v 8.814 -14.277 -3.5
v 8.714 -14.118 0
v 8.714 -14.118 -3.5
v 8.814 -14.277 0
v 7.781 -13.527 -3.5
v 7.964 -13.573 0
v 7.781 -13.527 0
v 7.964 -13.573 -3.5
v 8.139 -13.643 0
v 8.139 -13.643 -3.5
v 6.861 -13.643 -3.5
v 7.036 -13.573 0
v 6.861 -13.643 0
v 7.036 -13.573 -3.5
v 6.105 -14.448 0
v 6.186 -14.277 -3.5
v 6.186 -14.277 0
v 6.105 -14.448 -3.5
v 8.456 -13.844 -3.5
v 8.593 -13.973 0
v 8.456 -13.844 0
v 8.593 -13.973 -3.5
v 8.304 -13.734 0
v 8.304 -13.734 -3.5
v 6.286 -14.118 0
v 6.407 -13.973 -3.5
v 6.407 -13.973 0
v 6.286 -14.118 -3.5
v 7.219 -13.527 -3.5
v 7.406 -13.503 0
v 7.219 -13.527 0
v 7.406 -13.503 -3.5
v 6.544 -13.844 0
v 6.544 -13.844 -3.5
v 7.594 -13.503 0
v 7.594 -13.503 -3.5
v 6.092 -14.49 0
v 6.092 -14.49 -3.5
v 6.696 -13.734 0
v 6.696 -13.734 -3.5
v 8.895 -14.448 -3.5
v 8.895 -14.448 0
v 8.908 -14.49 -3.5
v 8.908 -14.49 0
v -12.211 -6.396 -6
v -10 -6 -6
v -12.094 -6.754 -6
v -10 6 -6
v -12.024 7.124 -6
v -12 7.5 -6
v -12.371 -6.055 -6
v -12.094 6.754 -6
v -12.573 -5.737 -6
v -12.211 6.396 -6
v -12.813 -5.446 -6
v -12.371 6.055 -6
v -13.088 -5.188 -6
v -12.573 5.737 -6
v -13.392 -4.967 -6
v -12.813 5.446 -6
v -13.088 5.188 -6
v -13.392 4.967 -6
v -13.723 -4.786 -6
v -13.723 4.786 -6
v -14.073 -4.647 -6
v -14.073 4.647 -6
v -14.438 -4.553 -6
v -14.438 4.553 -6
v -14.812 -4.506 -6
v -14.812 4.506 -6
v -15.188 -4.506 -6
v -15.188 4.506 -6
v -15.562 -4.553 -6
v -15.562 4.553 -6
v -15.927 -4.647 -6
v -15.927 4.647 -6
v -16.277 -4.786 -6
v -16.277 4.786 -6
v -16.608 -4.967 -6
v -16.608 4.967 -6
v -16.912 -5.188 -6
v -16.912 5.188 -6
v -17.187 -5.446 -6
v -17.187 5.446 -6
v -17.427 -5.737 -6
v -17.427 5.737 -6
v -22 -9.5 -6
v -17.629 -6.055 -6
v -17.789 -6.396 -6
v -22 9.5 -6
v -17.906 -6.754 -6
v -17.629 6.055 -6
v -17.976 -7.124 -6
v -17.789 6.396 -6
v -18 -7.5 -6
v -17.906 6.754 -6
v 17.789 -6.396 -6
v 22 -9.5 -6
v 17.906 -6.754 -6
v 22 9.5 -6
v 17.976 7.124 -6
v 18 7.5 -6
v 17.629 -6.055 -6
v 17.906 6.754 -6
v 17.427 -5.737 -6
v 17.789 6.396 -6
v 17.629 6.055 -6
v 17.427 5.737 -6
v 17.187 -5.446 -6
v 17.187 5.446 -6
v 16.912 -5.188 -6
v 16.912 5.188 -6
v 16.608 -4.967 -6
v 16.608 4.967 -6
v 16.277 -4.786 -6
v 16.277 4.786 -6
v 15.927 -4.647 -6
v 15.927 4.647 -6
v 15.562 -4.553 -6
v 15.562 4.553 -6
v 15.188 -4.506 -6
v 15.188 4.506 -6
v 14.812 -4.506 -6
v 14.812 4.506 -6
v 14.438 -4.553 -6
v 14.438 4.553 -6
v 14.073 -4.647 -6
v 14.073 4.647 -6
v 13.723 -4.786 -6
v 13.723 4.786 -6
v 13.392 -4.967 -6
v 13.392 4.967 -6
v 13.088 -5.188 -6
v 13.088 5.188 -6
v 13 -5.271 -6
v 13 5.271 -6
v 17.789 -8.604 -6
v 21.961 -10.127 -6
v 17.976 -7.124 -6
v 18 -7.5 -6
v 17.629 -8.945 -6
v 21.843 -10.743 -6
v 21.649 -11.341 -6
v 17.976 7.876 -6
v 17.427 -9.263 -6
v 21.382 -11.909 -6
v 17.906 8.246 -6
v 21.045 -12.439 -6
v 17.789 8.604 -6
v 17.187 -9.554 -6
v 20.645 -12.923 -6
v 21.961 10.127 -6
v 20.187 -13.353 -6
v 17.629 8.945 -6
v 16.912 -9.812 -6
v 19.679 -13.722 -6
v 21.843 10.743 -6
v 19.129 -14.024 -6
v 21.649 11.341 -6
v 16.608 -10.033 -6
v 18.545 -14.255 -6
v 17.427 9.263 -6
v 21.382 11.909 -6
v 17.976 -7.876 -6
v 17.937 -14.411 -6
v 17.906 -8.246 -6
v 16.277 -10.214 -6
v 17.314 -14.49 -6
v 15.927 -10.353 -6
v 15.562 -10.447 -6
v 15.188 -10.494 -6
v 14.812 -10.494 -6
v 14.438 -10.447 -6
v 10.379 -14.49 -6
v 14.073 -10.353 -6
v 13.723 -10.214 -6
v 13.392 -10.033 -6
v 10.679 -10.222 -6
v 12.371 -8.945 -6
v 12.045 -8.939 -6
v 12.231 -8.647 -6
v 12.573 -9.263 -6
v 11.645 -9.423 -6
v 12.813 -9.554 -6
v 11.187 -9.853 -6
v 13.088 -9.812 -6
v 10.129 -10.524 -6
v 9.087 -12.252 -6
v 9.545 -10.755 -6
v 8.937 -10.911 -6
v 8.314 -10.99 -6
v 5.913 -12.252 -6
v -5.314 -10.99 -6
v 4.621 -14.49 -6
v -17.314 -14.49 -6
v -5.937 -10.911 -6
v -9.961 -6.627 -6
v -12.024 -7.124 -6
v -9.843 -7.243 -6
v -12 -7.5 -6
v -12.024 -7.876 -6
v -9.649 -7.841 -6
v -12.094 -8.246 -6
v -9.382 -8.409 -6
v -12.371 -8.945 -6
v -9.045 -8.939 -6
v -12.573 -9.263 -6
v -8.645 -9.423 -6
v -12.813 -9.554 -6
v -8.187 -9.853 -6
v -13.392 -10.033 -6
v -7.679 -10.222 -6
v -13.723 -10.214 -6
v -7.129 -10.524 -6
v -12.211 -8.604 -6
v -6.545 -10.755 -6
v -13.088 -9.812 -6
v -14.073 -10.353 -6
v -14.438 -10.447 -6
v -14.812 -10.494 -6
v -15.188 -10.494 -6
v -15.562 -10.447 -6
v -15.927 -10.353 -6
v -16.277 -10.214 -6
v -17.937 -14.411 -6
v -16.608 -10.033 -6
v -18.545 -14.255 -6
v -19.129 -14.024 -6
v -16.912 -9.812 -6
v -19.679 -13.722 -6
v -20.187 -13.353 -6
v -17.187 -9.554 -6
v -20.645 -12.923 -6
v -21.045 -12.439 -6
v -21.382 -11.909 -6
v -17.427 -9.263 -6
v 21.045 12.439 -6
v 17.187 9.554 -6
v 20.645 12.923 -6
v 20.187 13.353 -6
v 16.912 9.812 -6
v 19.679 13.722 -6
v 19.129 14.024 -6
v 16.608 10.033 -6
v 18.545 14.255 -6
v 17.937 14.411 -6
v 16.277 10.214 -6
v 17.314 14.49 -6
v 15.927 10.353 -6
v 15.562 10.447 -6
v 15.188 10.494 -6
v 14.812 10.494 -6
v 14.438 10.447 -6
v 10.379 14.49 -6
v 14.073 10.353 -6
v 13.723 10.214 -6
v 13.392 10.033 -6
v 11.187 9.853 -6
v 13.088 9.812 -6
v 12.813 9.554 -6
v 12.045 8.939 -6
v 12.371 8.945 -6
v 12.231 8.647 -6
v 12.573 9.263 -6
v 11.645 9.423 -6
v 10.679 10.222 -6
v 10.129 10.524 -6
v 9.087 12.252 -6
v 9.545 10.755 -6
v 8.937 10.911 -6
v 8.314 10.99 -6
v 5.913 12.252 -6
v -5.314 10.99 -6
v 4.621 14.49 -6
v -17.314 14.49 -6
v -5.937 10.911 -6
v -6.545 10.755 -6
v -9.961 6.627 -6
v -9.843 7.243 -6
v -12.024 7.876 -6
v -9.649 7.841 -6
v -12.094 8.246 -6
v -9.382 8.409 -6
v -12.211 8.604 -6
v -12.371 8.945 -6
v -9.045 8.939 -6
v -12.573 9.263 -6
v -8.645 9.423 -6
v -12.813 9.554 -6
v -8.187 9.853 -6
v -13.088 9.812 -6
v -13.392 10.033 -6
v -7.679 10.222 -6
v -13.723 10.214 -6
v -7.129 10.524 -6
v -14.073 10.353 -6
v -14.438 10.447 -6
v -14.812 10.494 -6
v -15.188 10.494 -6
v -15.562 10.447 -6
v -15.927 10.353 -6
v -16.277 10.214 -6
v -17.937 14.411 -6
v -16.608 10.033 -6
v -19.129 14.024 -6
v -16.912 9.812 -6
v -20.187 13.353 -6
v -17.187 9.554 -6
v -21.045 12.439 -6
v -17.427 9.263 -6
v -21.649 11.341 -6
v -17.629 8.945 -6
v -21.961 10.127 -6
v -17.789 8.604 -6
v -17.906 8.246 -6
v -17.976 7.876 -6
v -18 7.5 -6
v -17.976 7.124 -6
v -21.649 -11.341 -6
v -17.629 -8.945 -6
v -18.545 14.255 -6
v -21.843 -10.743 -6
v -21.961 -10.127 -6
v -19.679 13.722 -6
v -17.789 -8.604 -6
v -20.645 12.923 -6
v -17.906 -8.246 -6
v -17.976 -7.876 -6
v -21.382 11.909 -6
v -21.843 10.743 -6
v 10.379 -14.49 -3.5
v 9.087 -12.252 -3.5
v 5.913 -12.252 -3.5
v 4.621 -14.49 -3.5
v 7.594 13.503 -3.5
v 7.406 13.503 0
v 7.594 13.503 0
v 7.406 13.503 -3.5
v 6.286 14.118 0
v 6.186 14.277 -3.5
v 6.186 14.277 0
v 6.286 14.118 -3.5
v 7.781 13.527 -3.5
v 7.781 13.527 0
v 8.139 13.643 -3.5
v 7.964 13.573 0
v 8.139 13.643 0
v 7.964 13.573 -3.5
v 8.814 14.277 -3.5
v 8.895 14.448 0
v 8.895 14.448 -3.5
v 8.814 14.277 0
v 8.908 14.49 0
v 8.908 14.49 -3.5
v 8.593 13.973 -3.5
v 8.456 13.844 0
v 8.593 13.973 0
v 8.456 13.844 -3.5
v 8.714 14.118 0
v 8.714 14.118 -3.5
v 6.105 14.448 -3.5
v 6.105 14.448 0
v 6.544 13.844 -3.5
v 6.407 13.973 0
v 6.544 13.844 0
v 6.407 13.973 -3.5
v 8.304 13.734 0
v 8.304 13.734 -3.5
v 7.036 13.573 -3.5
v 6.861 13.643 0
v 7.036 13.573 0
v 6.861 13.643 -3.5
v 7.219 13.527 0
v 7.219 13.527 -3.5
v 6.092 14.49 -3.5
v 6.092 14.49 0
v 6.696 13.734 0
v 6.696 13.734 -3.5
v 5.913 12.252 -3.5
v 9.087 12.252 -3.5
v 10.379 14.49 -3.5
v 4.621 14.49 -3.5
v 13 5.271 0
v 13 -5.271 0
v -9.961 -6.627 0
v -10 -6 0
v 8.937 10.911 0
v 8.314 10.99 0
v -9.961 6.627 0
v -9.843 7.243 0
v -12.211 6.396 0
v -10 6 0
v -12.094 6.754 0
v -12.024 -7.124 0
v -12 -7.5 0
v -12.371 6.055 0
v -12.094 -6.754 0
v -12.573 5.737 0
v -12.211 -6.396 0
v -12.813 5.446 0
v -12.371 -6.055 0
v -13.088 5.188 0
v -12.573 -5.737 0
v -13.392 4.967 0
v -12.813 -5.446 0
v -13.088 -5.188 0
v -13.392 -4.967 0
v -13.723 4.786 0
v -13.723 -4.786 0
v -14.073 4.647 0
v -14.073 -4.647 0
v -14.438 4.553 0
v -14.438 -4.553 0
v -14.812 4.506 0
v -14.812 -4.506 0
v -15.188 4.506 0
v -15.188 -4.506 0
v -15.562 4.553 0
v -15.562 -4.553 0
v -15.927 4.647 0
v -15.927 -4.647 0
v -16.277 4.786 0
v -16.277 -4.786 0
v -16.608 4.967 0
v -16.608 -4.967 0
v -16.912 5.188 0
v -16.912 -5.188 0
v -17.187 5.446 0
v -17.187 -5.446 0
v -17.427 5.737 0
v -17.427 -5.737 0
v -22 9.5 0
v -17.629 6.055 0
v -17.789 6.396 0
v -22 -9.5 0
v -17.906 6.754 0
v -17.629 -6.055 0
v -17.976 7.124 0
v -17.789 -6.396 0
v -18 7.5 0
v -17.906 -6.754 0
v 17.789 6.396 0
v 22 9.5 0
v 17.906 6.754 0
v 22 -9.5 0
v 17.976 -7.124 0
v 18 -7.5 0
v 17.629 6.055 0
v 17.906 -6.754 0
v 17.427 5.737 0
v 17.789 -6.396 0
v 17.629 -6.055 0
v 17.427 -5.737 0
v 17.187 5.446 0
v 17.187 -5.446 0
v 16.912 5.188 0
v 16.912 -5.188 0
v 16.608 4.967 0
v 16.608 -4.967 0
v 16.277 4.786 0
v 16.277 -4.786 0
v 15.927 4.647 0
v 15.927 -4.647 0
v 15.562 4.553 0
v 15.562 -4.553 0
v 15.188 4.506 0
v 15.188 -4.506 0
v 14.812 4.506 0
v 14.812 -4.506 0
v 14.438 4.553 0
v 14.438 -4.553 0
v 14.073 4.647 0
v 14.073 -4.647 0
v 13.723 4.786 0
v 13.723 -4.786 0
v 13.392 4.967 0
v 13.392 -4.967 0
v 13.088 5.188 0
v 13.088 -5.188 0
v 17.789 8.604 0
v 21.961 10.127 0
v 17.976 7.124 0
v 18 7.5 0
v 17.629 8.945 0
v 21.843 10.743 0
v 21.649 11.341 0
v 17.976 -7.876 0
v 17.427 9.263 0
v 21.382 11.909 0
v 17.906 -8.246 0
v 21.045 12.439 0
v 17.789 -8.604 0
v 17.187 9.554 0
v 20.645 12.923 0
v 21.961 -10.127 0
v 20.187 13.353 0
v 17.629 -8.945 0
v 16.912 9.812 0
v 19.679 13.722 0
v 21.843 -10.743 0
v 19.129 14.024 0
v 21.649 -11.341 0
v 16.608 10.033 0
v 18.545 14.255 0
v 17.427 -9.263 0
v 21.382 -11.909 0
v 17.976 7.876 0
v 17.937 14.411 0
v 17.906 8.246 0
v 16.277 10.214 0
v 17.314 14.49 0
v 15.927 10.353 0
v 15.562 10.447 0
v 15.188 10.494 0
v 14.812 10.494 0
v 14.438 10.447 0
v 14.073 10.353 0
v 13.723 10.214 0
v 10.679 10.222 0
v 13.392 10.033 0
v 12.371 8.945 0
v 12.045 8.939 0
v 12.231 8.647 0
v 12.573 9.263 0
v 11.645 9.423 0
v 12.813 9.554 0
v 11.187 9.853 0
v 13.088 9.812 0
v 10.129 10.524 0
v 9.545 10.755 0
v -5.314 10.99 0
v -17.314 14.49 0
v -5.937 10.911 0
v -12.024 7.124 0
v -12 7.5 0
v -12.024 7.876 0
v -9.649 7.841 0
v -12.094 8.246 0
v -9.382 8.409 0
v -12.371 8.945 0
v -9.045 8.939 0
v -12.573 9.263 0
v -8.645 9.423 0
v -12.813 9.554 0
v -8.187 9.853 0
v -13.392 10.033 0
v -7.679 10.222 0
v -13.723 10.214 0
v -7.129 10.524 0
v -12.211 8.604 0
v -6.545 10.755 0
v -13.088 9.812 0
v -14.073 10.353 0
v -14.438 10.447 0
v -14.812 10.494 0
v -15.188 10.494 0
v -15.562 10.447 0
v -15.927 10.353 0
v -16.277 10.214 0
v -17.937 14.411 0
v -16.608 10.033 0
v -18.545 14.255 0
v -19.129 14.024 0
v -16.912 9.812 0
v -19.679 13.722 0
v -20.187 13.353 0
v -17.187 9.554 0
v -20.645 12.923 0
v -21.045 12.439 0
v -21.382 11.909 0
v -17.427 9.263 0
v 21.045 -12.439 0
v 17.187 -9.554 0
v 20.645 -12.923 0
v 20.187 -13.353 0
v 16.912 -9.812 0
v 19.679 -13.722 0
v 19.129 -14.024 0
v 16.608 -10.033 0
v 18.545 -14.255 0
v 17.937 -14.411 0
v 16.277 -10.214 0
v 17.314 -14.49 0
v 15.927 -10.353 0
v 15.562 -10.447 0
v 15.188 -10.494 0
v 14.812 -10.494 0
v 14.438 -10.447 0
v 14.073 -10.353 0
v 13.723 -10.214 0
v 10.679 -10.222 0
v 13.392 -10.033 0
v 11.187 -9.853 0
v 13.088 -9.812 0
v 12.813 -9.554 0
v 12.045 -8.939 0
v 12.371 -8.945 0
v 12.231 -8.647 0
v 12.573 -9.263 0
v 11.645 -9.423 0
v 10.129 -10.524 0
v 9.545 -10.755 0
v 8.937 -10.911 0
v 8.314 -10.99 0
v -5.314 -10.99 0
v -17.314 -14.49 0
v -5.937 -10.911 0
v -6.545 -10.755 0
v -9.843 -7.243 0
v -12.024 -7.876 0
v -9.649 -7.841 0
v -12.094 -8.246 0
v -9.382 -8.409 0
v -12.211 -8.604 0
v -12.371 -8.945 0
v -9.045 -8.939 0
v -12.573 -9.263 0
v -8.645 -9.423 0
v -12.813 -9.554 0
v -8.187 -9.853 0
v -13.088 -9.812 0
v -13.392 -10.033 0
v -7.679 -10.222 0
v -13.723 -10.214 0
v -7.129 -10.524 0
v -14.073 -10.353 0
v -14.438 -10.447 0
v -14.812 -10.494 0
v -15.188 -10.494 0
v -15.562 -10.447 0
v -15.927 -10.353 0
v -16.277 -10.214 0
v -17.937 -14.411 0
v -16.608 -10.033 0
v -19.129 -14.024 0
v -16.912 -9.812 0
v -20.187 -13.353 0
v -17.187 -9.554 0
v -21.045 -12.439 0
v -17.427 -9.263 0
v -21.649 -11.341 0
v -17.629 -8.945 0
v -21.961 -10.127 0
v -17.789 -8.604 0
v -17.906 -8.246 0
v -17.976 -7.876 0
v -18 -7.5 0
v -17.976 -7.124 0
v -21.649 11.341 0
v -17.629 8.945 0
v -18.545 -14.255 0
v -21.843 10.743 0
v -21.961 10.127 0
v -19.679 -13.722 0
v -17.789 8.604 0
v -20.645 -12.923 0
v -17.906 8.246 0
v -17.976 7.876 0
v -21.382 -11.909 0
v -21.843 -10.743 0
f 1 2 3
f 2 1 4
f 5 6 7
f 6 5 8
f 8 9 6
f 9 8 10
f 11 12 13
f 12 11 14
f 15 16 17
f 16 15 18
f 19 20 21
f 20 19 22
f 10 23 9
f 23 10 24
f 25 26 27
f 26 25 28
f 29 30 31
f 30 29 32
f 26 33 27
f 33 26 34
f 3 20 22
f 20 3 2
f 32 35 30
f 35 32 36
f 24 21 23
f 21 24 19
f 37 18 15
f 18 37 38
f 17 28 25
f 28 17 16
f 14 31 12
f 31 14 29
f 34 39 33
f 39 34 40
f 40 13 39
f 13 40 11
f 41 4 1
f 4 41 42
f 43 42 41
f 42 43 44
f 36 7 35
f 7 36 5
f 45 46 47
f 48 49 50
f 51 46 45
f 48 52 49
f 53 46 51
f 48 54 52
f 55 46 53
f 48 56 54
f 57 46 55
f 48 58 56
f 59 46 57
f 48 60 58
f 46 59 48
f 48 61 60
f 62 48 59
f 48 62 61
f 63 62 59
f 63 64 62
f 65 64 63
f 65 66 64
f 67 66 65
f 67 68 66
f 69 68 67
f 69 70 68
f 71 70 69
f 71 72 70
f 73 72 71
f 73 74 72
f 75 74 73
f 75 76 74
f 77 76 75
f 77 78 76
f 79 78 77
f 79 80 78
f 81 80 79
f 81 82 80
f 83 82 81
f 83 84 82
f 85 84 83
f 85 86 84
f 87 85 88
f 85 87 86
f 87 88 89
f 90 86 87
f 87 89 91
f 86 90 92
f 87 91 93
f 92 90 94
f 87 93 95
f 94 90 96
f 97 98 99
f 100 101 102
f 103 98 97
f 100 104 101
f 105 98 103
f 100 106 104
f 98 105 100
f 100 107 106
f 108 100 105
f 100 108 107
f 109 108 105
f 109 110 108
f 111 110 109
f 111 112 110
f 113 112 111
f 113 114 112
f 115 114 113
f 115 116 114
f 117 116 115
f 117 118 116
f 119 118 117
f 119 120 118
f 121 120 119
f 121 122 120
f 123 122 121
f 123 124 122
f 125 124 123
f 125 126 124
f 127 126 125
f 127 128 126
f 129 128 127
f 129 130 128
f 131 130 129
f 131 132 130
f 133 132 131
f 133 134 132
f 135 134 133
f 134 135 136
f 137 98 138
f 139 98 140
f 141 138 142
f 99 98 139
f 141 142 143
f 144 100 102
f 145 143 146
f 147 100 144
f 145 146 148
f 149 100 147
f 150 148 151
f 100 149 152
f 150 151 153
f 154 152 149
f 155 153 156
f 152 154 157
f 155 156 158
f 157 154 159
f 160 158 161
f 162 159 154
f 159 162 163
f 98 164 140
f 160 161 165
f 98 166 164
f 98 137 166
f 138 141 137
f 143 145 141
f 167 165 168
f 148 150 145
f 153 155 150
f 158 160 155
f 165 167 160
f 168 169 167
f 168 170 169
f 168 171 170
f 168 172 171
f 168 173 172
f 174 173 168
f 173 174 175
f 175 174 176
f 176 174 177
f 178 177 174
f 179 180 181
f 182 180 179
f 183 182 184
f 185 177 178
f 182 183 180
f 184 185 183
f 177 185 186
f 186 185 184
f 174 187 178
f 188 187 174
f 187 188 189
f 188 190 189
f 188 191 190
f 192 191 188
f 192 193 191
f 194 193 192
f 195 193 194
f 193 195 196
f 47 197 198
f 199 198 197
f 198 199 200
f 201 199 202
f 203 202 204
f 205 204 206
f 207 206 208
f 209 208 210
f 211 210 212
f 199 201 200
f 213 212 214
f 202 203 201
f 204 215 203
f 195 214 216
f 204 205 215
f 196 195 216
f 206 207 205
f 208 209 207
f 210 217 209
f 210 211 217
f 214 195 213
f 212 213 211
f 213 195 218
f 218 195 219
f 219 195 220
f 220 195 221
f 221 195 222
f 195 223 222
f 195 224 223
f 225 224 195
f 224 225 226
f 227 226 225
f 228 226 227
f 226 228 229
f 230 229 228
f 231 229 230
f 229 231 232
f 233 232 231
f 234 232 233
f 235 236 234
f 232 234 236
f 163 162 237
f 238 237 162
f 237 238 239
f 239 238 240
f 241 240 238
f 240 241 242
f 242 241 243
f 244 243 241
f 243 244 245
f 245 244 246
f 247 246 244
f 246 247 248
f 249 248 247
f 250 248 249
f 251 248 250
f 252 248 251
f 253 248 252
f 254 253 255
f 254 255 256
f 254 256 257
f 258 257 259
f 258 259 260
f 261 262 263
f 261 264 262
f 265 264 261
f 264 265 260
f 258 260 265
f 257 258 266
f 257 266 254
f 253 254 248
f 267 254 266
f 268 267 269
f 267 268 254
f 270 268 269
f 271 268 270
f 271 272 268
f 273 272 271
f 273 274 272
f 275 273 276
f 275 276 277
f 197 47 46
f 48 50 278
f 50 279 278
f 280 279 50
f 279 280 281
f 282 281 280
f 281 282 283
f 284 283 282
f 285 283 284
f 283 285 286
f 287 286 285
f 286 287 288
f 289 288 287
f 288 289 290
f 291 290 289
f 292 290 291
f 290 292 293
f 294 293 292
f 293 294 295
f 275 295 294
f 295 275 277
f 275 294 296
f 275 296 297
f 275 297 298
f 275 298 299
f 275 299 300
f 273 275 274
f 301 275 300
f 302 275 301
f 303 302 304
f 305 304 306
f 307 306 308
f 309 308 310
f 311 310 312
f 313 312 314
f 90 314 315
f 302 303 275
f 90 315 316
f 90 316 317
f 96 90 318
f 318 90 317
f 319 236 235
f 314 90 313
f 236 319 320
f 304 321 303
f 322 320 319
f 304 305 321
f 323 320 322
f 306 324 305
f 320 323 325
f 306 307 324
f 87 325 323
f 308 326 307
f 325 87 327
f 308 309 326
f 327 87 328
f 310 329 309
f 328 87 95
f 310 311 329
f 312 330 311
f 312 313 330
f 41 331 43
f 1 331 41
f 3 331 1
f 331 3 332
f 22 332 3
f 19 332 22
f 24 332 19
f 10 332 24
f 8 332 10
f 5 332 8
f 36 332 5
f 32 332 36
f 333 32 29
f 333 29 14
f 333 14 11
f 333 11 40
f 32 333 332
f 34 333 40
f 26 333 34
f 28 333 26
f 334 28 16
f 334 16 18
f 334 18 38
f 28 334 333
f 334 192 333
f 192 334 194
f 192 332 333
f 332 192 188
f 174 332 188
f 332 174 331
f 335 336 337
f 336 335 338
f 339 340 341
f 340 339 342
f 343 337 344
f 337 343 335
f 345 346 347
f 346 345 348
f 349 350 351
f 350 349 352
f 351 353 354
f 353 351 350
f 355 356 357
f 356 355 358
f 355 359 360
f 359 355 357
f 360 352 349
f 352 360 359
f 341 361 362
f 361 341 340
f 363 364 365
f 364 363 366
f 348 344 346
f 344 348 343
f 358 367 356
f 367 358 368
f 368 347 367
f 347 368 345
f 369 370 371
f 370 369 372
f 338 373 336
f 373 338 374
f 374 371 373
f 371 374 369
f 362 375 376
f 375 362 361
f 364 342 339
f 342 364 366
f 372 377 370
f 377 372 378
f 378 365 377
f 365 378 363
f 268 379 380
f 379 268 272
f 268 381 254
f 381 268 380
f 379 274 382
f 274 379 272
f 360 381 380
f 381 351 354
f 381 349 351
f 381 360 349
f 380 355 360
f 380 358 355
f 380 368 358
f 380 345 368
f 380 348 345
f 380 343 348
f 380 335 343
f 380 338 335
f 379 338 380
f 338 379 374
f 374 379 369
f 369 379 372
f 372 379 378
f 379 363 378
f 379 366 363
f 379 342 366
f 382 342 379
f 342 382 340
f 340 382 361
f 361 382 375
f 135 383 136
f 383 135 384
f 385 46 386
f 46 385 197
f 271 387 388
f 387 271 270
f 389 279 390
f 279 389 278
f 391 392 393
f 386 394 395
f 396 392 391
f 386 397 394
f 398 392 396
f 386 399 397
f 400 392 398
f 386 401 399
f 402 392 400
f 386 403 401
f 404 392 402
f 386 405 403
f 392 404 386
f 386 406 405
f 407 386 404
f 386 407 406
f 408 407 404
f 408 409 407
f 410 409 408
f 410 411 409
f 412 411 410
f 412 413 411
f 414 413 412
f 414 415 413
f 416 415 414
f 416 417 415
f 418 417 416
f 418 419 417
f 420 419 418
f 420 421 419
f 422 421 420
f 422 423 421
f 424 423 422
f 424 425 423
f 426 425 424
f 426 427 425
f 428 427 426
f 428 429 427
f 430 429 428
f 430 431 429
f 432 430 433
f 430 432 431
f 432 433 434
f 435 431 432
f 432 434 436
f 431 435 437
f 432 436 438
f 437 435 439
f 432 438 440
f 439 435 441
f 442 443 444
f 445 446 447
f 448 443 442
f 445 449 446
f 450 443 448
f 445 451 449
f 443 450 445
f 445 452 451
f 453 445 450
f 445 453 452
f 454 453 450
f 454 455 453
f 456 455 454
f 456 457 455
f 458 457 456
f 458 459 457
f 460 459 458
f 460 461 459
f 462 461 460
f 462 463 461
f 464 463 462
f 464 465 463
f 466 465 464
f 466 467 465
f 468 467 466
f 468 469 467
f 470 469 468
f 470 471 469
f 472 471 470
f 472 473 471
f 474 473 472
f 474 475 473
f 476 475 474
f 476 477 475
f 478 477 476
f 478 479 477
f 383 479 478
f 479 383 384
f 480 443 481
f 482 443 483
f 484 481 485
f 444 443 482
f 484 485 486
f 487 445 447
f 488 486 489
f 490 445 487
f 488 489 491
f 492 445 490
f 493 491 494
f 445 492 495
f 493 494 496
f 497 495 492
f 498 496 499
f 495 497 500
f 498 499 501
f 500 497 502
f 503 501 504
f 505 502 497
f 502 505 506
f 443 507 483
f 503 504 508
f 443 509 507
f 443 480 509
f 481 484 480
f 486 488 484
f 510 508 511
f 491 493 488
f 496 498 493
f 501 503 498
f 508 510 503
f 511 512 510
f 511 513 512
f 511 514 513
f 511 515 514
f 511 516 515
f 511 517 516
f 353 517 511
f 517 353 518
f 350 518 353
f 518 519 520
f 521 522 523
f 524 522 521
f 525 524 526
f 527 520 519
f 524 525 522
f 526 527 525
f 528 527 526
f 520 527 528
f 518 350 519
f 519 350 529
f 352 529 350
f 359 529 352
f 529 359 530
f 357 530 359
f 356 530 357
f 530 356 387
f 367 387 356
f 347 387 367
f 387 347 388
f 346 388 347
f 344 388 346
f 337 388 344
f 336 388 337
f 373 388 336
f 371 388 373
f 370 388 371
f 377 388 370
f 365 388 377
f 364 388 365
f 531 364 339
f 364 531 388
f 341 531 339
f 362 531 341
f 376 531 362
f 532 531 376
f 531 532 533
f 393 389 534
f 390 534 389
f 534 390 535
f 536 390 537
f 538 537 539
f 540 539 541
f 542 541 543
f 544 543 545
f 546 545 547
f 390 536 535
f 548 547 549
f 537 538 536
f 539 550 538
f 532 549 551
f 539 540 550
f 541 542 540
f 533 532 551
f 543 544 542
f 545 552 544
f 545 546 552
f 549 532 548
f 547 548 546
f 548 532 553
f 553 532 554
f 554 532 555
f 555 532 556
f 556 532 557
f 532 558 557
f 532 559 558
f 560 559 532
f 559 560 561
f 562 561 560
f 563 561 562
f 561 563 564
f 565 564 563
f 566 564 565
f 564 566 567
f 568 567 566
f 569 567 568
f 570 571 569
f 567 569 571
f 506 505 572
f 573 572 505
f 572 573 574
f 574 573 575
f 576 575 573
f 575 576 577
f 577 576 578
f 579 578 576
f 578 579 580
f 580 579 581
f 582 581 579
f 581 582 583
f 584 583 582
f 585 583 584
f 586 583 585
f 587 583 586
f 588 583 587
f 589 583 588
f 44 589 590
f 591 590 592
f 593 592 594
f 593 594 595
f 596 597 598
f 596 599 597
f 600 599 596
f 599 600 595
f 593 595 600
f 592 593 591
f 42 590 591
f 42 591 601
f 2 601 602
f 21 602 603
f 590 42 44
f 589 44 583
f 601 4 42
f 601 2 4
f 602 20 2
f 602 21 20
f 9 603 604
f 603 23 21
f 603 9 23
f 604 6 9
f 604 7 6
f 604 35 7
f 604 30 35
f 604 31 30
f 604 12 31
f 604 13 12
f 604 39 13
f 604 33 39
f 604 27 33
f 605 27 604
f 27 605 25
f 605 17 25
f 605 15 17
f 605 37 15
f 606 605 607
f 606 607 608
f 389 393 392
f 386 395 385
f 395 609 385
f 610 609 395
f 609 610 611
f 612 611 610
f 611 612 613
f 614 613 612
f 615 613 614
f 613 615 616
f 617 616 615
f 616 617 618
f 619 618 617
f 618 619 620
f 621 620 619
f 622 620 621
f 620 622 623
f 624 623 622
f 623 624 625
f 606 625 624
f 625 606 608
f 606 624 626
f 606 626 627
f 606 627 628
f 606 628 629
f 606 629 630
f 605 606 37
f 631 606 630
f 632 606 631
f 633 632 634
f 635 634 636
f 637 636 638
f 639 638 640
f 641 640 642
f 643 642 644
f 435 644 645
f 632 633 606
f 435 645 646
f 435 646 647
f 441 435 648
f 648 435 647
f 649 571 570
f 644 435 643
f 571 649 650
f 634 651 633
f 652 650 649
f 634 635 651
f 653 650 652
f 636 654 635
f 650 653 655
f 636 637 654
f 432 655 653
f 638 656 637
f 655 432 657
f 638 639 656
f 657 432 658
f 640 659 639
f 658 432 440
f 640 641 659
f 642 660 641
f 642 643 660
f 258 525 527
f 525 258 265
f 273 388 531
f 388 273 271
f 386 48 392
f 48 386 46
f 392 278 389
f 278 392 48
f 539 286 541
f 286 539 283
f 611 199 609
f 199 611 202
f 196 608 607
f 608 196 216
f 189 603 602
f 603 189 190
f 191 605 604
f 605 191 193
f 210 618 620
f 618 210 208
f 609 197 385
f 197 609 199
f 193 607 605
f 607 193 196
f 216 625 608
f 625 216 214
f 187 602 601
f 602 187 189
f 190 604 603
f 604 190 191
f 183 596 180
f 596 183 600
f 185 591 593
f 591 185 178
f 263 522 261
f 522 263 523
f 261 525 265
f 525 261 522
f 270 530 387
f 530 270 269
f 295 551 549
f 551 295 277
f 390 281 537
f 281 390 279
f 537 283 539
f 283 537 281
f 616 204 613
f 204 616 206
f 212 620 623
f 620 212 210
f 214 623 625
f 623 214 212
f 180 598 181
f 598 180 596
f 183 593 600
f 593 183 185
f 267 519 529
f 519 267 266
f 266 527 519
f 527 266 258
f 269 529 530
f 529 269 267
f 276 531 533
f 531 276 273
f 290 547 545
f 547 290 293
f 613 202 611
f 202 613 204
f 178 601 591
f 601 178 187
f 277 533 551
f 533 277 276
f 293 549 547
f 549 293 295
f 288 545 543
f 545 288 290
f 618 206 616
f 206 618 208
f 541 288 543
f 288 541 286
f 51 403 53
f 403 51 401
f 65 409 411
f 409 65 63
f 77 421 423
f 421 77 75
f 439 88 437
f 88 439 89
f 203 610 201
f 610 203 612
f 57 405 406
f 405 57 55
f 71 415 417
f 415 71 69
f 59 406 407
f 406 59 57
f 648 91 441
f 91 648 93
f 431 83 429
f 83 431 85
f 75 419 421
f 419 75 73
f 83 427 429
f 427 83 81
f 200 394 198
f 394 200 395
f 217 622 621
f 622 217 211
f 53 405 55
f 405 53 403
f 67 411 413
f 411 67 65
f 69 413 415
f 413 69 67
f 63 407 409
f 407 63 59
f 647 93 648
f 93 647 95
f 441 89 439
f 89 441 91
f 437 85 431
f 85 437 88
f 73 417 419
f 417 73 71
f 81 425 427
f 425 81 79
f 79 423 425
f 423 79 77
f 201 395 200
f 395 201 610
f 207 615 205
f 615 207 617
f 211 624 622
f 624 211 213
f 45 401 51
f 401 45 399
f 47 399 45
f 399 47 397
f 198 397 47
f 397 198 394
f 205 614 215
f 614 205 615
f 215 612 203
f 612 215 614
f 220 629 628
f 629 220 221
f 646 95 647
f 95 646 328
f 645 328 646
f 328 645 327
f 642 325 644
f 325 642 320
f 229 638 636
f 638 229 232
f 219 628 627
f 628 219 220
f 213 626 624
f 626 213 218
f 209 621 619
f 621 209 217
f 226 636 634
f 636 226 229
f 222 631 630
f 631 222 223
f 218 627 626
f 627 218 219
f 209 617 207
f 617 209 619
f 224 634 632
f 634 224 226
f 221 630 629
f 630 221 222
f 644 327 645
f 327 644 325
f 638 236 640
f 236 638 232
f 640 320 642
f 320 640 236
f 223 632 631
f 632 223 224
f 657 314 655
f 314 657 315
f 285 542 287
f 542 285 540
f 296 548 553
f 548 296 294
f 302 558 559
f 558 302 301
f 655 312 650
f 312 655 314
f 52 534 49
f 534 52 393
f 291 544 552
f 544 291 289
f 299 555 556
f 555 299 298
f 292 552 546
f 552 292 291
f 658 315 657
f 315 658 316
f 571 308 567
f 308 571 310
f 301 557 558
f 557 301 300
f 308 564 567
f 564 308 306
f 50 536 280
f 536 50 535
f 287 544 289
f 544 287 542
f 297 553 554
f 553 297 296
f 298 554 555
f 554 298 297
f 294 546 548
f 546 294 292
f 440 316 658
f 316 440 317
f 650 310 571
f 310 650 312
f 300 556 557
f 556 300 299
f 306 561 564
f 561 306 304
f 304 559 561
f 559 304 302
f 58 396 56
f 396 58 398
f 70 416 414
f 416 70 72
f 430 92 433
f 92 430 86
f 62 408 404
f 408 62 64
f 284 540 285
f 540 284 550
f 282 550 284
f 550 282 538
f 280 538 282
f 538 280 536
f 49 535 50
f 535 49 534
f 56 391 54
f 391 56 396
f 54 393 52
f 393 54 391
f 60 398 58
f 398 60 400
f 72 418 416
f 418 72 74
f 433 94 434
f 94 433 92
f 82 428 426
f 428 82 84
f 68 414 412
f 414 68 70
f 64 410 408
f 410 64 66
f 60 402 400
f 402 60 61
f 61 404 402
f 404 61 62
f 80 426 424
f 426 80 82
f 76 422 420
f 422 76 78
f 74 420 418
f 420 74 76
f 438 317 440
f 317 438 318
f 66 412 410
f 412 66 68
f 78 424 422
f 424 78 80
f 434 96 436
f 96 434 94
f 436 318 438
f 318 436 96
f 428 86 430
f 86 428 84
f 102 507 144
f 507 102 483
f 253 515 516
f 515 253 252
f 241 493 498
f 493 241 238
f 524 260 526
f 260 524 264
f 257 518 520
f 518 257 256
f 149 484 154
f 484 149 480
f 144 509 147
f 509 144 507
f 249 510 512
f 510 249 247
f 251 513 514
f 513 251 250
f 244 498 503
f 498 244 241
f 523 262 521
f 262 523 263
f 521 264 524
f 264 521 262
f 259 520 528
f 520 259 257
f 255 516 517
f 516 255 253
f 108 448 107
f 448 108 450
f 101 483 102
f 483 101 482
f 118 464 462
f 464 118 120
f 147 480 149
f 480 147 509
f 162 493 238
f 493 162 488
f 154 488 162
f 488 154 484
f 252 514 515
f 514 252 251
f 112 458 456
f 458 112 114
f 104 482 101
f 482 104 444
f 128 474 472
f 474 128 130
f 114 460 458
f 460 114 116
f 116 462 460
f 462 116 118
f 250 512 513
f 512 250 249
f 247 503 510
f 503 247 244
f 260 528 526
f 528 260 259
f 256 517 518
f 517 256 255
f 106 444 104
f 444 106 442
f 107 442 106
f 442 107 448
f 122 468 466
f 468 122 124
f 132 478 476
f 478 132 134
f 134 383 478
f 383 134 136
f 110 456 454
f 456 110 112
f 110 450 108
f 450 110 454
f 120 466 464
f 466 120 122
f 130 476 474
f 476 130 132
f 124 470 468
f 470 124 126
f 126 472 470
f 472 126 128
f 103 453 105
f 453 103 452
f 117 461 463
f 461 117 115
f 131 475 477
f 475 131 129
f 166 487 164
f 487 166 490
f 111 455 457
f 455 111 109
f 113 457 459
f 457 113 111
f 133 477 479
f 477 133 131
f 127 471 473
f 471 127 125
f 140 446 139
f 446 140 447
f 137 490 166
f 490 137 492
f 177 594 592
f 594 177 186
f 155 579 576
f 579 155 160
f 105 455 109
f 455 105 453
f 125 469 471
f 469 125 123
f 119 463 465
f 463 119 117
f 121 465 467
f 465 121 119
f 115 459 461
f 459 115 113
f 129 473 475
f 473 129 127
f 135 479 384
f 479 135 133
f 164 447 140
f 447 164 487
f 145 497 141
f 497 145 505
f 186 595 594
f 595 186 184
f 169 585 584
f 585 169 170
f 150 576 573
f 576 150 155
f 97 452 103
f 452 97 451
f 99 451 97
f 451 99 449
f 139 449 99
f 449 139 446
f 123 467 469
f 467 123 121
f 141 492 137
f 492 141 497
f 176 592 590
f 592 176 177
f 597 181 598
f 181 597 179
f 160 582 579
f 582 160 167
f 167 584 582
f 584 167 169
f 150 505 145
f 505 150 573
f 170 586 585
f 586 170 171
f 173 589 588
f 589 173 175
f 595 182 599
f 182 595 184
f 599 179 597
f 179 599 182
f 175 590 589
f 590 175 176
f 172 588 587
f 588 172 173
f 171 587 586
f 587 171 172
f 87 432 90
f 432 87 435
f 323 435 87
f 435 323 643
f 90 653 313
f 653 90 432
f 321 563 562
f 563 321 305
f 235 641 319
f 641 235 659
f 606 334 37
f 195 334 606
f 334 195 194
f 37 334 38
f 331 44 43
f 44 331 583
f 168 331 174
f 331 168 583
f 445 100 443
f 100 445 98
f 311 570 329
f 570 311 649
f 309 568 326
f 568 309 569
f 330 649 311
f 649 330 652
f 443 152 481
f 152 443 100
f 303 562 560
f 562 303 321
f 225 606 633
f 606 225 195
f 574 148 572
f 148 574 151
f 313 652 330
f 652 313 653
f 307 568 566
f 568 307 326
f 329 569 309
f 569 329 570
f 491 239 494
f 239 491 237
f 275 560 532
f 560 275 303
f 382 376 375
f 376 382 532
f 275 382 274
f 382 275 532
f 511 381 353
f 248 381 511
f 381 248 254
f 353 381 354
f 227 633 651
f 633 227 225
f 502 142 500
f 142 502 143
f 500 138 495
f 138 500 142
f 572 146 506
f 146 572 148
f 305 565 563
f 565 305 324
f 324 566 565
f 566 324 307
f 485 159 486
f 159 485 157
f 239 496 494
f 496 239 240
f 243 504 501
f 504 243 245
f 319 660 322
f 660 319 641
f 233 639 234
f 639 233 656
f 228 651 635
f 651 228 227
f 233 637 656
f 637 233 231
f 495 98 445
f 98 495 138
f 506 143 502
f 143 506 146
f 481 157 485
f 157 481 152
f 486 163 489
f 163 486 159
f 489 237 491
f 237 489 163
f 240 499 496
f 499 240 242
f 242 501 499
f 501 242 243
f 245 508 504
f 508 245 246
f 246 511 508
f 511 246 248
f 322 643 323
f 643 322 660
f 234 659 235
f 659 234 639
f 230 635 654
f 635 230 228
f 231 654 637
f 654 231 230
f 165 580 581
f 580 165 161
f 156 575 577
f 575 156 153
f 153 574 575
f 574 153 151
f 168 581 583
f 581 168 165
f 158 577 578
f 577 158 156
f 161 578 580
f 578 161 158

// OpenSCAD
$fn = 50;


difference() {
	union() {
		translate(v = [0, 0, -6]) {
			hull() {
				translate(v = [-17.0000000000, 9.5000000000, 0]) {
					cylinder(h = 6, r = 5);
				}
				translate(v = [17.0000000000, 9.5000000000, 0]) {
					cylinder(h = 6, r = 5);
				}
				translate(v = [-17.0000000000, -9.5000000000, 0]) {
					cylinder(h = 6, r = 5);
				}
				translate(v = [17.0000000000, -9.5000000000, 0]) {
					cylinder(h = 6, r = 5);
				}
			}
		}
	}
	union() {
		translate(v = [7.5000000000, -15, -6]) {
			rotate(a = [0, 0, 0]) {
				difference() {
					union() {
						translate(v = [0, 0, -50.0000000000]) {
							cylinder(h = 100, r = 1.5000000000);
						}
						translate(v = [0, 0, -50.0000000000]) {
							cylinder(h = 100, r = 1.5000000000);
						}
						linear_extrude(height = 2.5000000000) {
							polygon(points = [[3.1735000000, 0.0000000000], [1.5867500000, 2.7483316189], [-1.5867500000, 2.7483316189], [-3.1735000000, 0.0000000000], [-1.5867500000, -2.7483316189], [1.5867500000, -2.7483316189]]);
						}
						translate(v = [0, 0, -50.0000000000]) {
							cylinder(h = 100, r = 1.5000000000);
						}
					}
					union();
				}
			}
		}
		translate(v = [7.5000000000, 15, -6]) {
			rotate(a = [0, 0, 0]) {
				difference() {
					union() {
						translate(v = [0, 0, -50.0000000000]) {
							cylinder(h = 100, r = 1.5000000000);
						}
						translate(v = [0, 0, -50.0000000000]) {
							cylinder(h = 100, r = 1.5000000000);
						}
						linear_extrude(height = 2.5000000000) {
							polygon(points = [[3.1735000000, 0.0000000000], [1.5867500000, 2.7483316189], [-1.5867500000, 2.7483316189], [-3.1735000000, 0.0000000000], [-1.5867500000, -2.7483316189], [1.5867500000, -2.7483316189]]);
						}
						translate(v = [0, 0, -50.0000000000]) {
							cylinder(h = 100, r = 1.5000000000);
						}
					}
					union();
				}
			}
		}
		translate(v = [0, 0, -3]) {
			rotate(a = [0, 0, 180]) {
				difference() {
					union() {
						translate(v = [-1.5000000000, 0, -3]) {
							#hull() {
								translate(v = [-6.5000000000, 6.0000000000, 0]) {
									cylinder(h = 6, r = 5);
								}
								translate(v = [6.5000000000, 6.0000000000, 0]) {
									cylinder(h = 6, r = 5);
								}
								translate(v = [-6.5000000000, -6.0000000000, 0]) {
									cylinder(h = 6, r = 5);
								}
								translate(v = [6.5000000000, -6.0000000000, 0]) {
									cylinder(h = 6, r = 5);
								}
							}
						}
					}
					union();
				}
			}
		}
		translate(v = [-15.0000000000, -7.5000000000, -50.0000000000]) {
			cylinder(h = 100, r = 3.0000000000);
		}
		translate(v = [-15.0000000000, 7.5000000000, -50.0000000000]) {
			cylinder(h = 100, r = 3.0000000000);
		}
		translate(v = [-15.0000000000, 7.5000000000, -50.0000000000]) {
			cylinder(h = 100, r = 3.0000000000);
		}
		translate(v = [0.0000000000, 7.5000000000, -50.0000000000]) {
			cylinder(h = 100, r = 3.0000000000);
		}
		translate(v = [15.0000000000, 7.5000000000, -50.0000000000]) {
			cylinder(h = 100, r = 3.0000000000);
		}
		translate(v = [-15.0000000000, -7.5000000000, -50.0000000000]) {
			cylinder(h = 100, r = 3.0000000000);
		}
		translate(v = [0.0000000000, -7.5000000000, -50.0000000000]) {
			cylinder(h = 100, r = 3.0000000000);
		}
		translate(v = [15.0000000000, -7.5000000000, -50.0000000000]) {
			cylinder(h = 100, r = 3.0000000000);
		}
	}
}
